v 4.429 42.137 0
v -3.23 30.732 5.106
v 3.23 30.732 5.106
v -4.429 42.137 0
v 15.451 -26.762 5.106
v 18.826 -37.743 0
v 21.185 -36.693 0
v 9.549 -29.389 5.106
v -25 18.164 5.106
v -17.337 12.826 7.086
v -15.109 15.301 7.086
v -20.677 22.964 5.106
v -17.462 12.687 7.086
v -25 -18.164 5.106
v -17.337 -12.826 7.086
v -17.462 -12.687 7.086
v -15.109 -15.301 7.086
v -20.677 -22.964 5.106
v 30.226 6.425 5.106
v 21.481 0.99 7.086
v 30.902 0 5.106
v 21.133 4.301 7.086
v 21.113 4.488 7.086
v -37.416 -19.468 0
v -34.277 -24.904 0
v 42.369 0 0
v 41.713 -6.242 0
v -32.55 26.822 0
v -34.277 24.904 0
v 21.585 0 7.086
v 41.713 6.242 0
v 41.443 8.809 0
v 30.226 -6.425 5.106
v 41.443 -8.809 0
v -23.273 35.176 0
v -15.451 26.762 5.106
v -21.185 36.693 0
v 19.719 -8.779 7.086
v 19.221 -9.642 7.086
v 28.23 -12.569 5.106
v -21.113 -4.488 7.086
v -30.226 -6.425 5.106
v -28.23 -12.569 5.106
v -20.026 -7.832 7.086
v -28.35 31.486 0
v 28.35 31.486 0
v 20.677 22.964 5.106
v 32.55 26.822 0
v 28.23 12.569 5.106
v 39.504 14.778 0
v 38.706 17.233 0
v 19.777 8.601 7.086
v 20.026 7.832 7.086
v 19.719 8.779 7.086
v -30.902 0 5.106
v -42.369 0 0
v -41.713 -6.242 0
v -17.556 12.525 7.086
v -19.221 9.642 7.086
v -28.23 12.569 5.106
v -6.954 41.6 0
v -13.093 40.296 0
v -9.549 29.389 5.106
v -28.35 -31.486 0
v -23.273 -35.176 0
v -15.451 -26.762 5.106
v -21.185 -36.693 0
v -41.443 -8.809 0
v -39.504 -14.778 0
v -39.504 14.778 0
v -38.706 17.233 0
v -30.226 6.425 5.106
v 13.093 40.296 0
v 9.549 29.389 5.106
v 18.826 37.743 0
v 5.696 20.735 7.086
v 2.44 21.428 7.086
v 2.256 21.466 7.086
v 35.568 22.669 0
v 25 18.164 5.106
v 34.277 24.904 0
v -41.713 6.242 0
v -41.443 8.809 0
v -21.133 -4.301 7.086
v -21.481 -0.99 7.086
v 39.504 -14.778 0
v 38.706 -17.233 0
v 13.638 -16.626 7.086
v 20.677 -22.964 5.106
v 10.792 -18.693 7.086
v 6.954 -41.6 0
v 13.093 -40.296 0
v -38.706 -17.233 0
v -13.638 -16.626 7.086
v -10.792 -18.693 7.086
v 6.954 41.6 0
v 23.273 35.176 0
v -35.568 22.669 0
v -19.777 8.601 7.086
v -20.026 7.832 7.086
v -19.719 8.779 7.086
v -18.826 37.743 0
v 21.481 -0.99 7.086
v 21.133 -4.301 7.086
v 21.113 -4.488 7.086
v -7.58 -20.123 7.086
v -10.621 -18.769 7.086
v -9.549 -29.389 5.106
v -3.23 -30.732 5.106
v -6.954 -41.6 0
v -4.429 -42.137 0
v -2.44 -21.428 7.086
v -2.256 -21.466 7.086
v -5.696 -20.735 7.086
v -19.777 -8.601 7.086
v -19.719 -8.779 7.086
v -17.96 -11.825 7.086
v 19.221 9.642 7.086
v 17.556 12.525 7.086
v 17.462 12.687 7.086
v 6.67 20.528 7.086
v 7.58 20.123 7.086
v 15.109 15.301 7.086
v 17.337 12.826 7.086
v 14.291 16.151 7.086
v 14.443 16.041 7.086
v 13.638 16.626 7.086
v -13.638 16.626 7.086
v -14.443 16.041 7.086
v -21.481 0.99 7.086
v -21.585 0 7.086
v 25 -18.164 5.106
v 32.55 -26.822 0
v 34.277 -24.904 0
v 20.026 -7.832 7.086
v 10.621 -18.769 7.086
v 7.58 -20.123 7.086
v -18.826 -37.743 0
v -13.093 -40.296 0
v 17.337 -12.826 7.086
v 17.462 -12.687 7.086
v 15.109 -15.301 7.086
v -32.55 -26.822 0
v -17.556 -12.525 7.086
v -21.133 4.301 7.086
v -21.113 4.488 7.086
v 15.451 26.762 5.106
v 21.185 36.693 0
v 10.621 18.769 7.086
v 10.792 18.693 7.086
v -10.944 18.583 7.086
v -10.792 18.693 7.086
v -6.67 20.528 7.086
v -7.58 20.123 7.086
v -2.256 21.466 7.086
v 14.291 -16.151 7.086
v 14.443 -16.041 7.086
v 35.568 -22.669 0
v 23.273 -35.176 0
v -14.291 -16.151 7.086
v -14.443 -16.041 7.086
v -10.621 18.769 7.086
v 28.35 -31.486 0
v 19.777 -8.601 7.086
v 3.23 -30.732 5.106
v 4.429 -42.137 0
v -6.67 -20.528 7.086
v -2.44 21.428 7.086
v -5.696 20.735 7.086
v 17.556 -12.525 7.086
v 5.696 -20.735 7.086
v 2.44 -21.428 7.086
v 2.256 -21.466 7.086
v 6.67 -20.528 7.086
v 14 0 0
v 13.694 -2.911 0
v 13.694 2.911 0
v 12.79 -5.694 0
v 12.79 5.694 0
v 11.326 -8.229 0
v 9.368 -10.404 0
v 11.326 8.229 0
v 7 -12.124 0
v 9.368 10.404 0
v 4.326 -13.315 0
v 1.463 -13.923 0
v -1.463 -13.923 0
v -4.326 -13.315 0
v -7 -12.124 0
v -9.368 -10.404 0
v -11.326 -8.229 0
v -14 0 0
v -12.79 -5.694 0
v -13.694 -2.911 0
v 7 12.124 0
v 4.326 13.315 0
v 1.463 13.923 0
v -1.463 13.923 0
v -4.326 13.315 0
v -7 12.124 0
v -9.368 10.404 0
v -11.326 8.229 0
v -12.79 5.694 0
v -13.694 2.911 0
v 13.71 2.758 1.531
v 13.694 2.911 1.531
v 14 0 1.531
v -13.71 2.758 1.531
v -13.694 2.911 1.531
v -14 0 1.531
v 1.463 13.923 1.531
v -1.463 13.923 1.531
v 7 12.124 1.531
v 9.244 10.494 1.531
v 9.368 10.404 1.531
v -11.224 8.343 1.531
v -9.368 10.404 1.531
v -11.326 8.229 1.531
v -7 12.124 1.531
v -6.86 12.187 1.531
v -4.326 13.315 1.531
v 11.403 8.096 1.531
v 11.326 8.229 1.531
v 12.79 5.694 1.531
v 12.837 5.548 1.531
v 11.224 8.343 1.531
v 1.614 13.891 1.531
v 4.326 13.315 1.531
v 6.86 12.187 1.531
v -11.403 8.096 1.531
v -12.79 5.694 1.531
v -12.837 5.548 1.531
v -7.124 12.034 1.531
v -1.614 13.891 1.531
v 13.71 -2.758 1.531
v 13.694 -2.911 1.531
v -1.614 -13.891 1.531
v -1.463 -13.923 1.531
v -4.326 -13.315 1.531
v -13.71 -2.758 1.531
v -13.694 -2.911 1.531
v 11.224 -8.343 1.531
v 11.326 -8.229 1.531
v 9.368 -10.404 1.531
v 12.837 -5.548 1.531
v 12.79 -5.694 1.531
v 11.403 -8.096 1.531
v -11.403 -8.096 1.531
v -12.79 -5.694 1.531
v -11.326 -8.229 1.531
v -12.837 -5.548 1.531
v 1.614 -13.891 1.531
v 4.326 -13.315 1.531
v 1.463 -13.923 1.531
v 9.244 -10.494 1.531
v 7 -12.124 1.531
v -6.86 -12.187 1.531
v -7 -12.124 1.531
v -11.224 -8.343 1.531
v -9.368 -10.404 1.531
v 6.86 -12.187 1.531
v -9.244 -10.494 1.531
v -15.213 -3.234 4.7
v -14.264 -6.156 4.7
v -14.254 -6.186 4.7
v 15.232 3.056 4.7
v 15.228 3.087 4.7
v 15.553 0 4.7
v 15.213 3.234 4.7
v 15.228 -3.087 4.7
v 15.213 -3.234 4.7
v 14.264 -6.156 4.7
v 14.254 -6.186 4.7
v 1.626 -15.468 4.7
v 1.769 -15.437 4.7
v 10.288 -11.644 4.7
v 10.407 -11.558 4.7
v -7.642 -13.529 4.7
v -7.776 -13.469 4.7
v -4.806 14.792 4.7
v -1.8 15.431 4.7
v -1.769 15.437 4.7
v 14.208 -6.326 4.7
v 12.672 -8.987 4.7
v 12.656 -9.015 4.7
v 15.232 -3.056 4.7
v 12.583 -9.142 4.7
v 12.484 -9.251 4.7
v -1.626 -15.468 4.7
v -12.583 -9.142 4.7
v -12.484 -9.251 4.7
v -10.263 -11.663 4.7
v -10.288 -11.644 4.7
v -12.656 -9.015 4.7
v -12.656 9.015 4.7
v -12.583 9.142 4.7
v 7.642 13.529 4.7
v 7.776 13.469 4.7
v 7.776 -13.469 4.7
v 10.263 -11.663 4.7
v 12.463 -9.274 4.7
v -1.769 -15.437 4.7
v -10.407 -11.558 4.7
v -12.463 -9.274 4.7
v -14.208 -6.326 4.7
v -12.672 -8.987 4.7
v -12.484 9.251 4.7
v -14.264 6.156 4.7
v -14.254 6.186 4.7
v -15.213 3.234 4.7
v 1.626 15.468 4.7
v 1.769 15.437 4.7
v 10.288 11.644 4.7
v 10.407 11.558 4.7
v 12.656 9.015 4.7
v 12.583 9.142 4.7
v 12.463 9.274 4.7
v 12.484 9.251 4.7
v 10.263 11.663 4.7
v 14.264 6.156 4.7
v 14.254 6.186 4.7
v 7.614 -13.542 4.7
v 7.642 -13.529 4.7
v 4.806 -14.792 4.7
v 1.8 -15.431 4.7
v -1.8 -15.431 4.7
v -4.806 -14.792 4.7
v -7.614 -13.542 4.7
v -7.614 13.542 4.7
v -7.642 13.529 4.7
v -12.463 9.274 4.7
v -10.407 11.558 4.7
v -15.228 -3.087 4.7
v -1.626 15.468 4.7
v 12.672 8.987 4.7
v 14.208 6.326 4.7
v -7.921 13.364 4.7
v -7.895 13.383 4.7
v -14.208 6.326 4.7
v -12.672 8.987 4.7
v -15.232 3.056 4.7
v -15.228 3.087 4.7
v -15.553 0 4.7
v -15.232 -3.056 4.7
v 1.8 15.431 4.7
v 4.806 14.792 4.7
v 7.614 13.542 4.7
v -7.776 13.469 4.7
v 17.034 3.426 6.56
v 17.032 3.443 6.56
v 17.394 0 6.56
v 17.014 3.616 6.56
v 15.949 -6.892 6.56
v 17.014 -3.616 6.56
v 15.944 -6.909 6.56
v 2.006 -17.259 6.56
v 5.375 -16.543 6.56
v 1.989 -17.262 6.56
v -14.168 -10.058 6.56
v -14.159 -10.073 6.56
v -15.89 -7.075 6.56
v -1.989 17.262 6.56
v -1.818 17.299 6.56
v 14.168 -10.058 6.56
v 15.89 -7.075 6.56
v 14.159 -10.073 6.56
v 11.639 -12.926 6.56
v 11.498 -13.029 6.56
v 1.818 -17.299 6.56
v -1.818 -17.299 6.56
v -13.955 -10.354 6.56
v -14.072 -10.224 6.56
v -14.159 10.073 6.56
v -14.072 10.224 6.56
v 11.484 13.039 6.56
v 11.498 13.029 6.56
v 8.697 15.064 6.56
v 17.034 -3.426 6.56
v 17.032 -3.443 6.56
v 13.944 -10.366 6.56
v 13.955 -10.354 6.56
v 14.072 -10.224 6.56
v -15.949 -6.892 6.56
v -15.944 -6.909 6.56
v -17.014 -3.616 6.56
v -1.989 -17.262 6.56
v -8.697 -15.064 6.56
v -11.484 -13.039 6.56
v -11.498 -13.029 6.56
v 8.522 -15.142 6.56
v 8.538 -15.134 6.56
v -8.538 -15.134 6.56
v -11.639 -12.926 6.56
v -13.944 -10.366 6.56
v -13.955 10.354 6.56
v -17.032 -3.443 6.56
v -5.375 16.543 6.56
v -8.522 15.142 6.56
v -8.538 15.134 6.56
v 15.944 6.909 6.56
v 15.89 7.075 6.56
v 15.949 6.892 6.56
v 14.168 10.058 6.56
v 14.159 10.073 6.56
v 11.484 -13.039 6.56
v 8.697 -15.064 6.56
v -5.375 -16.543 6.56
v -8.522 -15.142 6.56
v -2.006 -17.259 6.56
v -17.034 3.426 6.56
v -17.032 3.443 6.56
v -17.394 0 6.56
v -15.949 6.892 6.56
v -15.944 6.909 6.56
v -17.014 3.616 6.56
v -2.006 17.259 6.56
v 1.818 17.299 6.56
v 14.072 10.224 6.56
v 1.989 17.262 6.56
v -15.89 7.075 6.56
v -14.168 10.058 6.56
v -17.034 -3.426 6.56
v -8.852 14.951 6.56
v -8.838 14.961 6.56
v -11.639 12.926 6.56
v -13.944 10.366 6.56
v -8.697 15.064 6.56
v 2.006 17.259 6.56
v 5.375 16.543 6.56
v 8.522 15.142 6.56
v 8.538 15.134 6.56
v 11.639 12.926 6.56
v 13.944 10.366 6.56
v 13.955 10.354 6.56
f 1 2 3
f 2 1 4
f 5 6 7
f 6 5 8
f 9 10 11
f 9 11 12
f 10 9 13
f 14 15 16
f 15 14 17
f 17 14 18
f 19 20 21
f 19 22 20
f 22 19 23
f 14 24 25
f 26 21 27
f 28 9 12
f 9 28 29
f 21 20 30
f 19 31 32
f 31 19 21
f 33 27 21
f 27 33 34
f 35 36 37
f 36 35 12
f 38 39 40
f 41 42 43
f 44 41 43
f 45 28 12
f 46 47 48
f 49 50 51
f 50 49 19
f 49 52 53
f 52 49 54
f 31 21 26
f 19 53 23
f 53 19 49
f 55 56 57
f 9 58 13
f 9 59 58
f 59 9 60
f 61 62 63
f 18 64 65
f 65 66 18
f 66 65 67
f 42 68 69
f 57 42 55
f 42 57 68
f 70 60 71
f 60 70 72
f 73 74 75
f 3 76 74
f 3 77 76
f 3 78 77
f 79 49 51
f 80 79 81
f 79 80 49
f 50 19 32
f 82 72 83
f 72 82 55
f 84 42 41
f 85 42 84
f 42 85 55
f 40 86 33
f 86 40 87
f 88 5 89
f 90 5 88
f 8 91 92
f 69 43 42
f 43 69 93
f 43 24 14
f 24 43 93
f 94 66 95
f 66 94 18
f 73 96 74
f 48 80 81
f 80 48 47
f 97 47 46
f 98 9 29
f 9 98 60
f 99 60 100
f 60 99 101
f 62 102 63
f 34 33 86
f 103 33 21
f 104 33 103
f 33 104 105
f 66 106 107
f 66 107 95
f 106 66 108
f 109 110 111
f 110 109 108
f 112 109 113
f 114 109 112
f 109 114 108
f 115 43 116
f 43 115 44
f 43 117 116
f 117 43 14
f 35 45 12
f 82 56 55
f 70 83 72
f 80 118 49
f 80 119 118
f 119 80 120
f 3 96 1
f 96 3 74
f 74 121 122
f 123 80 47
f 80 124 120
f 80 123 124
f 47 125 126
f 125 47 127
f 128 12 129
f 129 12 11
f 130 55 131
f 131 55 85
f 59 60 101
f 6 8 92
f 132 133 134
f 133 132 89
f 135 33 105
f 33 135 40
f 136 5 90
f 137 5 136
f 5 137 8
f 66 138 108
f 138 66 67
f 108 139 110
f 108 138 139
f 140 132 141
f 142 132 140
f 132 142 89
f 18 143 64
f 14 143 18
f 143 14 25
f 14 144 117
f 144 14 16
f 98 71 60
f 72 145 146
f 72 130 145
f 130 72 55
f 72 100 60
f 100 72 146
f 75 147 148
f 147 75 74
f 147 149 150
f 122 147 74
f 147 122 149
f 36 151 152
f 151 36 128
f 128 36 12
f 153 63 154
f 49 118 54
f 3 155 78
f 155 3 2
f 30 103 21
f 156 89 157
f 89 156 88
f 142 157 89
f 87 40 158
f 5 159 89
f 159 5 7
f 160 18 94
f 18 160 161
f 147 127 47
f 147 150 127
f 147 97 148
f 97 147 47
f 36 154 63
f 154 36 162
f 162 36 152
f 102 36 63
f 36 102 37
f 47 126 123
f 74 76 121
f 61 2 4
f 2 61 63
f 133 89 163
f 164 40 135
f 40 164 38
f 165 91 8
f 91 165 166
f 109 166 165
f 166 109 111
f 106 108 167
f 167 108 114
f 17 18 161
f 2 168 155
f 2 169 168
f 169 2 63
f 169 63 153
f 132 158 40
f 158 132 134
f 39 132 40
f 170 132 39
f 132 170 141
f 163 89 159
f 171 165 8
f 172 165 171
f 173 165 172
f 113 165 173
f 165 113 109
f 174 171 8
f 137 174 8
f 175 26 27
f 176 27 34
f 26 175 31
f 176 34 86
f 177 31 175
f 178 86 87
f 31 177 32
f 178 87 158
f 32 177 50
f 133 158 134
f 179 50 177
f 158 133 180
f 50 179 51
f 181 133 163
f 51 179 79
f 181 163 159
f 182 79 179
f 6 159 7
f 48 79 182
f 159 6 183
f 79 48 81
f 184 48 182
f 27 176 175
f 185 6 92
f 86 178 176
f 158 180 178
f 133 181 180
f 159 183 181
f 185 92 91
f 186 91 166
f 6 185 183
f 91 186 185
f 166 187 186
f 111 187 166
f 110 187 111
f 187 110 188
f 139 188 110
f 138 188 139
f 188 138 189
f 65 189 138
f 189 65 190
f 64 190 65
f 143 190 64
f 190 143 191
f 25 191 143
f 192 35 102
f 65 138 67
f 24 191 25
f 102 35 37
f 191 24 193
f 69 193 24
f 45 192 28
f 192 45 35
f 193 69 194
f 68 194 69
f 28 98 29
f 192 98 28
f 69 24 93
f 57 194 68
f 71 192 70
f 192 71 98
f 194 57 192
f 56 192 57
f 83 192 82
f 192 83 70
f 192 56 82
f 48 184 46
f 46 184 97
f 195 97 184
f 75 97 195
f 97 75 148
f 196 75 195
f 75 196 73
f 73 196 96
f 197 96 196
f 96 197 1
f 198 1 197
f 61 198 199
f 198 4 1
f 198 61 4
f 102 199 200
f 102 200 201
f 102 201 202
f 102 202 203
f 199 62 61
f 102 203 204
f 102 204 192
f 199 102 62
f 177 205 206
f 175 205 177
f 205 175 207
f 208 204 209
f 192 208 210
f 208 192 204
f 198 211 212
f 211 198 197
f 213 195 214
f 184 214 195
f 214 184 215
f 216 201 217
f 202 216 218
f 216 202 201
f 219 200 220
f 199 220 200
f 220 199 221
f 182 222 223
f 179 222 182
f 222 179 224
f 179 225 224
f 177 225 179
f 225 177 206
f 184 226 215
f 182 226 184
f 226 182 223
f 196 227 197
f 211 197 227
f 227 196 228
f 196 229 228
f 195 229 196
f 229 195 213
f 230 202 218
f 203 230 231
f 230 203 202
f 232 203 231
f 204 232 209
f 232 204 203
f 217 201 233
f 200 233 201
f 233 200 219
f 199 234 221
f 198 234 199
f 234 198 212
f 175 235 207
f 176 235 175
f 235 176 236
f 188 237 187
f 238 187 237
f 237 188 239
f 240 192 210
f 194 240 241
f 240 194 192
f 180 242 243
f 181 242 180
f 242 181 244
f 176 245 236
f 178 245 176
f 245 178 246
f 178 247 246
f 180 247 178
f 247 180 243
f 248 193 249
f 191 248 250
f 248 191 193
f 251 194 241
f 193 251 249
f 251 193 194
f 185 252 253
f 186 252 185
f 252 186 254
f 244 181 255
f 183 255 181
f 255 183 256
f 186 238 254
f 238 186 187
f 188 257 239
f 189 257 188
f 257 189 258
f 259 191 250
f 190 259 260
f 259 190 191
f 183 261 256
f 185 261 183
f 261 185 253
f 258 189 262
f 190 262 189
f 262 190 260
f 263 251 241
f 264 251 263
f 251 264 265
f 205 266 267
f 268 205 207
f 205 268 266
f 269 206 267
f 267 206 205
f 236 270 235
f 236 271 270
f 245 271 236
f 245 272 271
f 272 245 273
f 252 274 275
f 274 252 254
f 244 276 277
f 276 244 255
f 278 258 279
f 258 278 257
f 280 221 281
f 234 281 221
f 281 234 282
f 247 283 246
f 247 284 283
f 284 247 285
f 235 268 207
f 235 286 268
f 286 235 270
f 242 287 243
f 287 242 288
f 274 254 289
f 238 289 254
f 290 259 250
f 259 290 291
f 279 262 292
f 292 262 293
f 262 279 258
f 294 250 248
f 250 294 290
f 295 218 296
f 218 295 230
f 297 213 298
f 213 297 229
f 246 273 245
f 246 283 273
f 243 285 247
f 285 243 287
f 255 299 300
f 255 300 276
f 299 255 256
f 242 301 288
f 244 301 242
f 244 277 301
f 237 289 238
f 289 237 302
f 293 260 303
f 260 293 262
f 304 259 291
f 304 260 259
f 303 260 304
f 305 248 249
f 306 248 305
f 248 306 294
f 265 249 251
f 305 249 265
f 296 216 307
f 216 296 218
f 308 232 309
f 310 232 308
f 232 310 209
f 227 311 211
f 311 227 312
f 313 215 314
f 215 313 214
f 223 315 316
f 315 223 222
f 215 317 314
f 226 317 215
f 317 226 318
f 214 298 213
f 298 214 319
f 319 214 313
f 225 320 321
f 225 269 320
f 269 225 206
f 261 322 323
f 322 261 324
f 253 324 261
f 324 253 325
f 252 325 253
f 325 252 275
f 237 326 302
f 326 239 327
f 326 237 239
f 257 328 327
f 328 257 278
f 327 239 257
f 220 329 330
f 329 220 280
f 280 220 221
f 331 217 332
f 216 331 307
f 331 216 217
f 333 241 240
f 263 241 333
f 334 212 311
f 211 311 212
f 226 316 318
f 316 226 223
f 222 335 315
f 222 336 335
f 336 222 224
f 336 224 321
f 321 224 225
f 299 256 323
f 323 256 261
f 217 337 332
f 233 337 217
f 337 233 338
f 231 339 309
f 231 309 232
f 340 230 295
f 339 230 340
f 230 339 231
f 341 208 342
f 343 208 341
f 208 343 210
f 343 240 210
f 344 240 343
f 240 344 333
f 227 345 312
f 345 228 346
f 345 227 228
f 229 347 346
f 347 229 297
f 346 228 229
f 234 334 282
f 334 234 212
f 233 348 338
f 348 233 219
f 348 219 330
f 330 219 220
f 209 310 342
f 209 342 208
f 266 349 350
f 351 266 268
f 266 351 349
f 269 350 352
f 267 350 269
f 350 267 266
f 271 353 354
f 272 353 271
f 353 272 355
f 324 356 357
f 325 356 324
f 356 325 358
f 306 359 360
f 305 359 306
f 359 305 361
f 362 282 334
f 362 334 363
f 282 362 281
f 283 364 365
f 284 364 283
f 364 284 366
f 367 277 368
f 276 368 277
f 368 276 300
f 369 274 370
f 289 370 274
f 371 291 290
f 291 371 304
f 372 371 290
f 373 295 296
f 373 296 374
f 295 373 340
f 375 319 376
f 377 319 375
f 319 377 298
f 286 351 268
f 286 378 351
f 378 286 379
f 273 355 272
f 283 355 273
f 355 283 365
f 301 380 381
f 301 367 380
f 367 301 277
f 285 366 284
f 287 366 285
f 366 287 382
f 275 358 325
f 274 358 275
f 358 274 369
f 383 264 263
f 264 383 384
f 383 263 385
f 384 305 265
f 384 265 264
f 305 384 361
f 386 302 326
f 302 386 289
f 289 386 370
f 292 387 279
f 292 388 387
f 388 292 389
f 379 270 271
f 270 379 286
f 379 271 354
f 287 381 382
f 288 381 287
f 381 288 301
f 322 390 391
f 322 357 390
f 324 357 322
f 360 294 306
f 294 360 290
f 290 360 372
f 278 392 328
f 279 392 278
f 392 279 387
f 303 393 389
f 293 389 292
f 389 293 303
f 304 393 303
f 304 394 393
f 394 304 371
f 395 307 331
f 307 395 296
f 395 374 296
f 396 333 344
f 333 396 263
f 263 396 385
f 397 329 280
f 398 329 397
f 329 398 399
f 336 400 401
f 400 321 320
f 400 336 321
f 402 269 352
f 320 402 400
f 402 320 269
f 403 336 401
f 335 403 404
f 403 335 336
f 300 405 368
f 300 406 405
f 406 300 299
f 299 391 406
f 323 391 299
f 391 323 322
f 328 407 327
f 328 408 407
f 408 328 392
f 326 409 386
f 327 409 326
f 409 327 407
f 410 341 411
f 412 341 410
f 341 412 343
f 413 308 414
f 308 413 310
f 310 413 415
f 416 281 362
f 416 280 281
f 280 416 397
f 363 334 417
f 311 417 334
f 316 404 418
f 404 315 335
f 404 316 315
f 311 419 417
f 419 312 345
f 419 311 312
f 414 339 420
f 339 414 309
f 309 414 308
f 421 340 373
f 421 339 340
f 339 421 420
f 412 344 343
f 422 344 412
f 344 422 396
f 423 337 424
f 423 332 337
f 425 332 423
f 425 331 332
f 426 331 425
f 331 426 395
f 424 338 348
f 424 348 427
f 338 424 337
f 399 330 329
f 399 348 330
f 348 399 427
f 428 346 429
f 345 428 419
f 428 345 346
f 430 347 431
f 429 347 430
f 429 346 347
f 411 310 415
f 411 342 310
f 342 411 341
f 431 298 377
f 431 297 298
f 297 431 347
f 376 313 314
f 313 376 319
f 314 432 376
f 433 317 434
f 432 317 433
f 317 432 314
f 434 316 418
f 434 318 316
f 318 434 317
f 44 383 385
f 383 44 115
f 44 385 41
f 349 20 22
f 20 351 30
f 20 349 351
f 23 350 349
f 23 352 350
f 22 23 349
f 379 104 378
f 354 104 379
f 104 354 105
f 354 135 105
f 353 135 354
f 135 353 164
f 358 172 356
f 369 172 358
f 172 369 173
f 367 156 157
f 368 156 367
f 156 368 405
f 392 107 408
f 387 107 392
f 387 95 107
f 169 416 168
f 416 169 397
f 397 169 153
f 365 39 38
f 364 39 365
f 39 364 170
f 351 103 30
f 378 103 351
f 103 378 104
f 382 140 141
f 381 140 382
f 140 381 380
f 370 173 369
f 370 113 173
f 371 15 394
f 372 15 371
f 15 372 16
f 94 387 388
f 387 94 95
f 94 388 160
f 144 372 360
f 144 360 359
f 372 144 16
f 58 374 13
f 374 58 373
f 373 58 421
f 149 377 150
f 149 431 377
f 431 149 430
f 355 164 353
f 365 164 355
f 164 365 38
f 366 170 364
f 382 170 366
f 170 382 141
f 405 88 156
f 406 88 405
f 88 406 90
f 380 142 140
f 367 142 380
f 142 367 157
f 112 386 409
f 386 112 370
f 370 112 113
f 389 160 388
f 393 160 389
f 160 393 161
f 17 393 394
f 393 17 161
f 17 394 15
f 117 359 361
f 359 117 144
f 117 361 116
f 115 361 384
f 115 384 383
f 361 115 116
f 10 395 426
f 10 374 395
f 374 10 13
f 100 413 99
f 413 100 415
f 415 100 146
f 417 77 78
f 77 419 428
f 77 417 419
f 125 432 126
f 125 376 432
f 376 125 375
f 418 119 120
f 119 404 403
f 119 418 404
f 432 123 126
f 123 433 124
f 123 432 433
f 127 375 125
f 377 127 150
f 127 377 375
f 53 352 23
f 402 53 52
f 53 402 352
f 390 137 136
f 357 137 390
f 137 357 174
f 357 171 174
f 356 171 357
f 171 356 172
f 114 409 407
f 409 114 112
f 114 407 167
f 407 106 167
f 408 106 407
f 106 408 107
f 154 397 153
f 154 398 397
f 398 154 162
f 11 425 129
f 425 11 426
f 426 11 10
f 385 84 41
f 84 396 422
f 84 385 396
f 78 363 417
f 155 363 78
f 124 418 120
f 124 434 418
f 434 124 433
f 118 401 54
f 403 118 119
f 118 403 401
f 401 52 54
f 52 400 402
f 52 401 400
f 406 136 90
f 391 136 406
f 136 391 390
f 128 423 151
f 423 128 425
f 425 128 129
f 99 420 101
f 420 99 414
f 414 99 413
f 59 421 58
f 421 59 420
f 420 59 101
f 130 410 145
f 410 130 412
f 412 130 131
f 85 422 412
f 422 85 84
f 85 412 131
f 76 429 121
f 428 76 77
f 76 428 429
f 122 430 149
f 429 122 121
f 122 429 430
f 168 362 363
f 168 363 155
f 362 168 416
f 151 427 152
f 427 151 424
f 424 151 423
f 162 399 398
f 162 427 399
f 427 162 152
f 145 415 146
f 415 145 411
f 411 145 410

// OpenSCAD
sphereSize = 100;

difference(){
translate([0,0,-90])
	sphere(sphereSize,10);

translate([0,0,sphereSize -(sphereSize/.50)] )
	cylinder(h = sphereSize*2, r=sphereSize,center=true);
	
translate([0,0,sphereSize -(sphereSize/.50)])
	cylinder(h=sphereSize*3, r=14, center=true);
	
translate([0,0,sphereSize-75])
	cylinder(h=sphereSize, r1=1, r2=50, center=true);

translate([0,0,sphereSize-60])
	cylinder(h=sphereSize, r1=1, r2=100, center=true);
	
translate([0,0,sphereSize-83])
	cylinder(h=sphereSize*.25, r1=1, r2=200, center=true);
}
/*
difference(){
	translate([0,0,-12])
		cylinder(h=24, r=20, center=true);
	translate([0,0,sphereSize -(sphereSize/.50)])
		cylinder(h=sphereSize*3, r=14, center=true);
}
*/
